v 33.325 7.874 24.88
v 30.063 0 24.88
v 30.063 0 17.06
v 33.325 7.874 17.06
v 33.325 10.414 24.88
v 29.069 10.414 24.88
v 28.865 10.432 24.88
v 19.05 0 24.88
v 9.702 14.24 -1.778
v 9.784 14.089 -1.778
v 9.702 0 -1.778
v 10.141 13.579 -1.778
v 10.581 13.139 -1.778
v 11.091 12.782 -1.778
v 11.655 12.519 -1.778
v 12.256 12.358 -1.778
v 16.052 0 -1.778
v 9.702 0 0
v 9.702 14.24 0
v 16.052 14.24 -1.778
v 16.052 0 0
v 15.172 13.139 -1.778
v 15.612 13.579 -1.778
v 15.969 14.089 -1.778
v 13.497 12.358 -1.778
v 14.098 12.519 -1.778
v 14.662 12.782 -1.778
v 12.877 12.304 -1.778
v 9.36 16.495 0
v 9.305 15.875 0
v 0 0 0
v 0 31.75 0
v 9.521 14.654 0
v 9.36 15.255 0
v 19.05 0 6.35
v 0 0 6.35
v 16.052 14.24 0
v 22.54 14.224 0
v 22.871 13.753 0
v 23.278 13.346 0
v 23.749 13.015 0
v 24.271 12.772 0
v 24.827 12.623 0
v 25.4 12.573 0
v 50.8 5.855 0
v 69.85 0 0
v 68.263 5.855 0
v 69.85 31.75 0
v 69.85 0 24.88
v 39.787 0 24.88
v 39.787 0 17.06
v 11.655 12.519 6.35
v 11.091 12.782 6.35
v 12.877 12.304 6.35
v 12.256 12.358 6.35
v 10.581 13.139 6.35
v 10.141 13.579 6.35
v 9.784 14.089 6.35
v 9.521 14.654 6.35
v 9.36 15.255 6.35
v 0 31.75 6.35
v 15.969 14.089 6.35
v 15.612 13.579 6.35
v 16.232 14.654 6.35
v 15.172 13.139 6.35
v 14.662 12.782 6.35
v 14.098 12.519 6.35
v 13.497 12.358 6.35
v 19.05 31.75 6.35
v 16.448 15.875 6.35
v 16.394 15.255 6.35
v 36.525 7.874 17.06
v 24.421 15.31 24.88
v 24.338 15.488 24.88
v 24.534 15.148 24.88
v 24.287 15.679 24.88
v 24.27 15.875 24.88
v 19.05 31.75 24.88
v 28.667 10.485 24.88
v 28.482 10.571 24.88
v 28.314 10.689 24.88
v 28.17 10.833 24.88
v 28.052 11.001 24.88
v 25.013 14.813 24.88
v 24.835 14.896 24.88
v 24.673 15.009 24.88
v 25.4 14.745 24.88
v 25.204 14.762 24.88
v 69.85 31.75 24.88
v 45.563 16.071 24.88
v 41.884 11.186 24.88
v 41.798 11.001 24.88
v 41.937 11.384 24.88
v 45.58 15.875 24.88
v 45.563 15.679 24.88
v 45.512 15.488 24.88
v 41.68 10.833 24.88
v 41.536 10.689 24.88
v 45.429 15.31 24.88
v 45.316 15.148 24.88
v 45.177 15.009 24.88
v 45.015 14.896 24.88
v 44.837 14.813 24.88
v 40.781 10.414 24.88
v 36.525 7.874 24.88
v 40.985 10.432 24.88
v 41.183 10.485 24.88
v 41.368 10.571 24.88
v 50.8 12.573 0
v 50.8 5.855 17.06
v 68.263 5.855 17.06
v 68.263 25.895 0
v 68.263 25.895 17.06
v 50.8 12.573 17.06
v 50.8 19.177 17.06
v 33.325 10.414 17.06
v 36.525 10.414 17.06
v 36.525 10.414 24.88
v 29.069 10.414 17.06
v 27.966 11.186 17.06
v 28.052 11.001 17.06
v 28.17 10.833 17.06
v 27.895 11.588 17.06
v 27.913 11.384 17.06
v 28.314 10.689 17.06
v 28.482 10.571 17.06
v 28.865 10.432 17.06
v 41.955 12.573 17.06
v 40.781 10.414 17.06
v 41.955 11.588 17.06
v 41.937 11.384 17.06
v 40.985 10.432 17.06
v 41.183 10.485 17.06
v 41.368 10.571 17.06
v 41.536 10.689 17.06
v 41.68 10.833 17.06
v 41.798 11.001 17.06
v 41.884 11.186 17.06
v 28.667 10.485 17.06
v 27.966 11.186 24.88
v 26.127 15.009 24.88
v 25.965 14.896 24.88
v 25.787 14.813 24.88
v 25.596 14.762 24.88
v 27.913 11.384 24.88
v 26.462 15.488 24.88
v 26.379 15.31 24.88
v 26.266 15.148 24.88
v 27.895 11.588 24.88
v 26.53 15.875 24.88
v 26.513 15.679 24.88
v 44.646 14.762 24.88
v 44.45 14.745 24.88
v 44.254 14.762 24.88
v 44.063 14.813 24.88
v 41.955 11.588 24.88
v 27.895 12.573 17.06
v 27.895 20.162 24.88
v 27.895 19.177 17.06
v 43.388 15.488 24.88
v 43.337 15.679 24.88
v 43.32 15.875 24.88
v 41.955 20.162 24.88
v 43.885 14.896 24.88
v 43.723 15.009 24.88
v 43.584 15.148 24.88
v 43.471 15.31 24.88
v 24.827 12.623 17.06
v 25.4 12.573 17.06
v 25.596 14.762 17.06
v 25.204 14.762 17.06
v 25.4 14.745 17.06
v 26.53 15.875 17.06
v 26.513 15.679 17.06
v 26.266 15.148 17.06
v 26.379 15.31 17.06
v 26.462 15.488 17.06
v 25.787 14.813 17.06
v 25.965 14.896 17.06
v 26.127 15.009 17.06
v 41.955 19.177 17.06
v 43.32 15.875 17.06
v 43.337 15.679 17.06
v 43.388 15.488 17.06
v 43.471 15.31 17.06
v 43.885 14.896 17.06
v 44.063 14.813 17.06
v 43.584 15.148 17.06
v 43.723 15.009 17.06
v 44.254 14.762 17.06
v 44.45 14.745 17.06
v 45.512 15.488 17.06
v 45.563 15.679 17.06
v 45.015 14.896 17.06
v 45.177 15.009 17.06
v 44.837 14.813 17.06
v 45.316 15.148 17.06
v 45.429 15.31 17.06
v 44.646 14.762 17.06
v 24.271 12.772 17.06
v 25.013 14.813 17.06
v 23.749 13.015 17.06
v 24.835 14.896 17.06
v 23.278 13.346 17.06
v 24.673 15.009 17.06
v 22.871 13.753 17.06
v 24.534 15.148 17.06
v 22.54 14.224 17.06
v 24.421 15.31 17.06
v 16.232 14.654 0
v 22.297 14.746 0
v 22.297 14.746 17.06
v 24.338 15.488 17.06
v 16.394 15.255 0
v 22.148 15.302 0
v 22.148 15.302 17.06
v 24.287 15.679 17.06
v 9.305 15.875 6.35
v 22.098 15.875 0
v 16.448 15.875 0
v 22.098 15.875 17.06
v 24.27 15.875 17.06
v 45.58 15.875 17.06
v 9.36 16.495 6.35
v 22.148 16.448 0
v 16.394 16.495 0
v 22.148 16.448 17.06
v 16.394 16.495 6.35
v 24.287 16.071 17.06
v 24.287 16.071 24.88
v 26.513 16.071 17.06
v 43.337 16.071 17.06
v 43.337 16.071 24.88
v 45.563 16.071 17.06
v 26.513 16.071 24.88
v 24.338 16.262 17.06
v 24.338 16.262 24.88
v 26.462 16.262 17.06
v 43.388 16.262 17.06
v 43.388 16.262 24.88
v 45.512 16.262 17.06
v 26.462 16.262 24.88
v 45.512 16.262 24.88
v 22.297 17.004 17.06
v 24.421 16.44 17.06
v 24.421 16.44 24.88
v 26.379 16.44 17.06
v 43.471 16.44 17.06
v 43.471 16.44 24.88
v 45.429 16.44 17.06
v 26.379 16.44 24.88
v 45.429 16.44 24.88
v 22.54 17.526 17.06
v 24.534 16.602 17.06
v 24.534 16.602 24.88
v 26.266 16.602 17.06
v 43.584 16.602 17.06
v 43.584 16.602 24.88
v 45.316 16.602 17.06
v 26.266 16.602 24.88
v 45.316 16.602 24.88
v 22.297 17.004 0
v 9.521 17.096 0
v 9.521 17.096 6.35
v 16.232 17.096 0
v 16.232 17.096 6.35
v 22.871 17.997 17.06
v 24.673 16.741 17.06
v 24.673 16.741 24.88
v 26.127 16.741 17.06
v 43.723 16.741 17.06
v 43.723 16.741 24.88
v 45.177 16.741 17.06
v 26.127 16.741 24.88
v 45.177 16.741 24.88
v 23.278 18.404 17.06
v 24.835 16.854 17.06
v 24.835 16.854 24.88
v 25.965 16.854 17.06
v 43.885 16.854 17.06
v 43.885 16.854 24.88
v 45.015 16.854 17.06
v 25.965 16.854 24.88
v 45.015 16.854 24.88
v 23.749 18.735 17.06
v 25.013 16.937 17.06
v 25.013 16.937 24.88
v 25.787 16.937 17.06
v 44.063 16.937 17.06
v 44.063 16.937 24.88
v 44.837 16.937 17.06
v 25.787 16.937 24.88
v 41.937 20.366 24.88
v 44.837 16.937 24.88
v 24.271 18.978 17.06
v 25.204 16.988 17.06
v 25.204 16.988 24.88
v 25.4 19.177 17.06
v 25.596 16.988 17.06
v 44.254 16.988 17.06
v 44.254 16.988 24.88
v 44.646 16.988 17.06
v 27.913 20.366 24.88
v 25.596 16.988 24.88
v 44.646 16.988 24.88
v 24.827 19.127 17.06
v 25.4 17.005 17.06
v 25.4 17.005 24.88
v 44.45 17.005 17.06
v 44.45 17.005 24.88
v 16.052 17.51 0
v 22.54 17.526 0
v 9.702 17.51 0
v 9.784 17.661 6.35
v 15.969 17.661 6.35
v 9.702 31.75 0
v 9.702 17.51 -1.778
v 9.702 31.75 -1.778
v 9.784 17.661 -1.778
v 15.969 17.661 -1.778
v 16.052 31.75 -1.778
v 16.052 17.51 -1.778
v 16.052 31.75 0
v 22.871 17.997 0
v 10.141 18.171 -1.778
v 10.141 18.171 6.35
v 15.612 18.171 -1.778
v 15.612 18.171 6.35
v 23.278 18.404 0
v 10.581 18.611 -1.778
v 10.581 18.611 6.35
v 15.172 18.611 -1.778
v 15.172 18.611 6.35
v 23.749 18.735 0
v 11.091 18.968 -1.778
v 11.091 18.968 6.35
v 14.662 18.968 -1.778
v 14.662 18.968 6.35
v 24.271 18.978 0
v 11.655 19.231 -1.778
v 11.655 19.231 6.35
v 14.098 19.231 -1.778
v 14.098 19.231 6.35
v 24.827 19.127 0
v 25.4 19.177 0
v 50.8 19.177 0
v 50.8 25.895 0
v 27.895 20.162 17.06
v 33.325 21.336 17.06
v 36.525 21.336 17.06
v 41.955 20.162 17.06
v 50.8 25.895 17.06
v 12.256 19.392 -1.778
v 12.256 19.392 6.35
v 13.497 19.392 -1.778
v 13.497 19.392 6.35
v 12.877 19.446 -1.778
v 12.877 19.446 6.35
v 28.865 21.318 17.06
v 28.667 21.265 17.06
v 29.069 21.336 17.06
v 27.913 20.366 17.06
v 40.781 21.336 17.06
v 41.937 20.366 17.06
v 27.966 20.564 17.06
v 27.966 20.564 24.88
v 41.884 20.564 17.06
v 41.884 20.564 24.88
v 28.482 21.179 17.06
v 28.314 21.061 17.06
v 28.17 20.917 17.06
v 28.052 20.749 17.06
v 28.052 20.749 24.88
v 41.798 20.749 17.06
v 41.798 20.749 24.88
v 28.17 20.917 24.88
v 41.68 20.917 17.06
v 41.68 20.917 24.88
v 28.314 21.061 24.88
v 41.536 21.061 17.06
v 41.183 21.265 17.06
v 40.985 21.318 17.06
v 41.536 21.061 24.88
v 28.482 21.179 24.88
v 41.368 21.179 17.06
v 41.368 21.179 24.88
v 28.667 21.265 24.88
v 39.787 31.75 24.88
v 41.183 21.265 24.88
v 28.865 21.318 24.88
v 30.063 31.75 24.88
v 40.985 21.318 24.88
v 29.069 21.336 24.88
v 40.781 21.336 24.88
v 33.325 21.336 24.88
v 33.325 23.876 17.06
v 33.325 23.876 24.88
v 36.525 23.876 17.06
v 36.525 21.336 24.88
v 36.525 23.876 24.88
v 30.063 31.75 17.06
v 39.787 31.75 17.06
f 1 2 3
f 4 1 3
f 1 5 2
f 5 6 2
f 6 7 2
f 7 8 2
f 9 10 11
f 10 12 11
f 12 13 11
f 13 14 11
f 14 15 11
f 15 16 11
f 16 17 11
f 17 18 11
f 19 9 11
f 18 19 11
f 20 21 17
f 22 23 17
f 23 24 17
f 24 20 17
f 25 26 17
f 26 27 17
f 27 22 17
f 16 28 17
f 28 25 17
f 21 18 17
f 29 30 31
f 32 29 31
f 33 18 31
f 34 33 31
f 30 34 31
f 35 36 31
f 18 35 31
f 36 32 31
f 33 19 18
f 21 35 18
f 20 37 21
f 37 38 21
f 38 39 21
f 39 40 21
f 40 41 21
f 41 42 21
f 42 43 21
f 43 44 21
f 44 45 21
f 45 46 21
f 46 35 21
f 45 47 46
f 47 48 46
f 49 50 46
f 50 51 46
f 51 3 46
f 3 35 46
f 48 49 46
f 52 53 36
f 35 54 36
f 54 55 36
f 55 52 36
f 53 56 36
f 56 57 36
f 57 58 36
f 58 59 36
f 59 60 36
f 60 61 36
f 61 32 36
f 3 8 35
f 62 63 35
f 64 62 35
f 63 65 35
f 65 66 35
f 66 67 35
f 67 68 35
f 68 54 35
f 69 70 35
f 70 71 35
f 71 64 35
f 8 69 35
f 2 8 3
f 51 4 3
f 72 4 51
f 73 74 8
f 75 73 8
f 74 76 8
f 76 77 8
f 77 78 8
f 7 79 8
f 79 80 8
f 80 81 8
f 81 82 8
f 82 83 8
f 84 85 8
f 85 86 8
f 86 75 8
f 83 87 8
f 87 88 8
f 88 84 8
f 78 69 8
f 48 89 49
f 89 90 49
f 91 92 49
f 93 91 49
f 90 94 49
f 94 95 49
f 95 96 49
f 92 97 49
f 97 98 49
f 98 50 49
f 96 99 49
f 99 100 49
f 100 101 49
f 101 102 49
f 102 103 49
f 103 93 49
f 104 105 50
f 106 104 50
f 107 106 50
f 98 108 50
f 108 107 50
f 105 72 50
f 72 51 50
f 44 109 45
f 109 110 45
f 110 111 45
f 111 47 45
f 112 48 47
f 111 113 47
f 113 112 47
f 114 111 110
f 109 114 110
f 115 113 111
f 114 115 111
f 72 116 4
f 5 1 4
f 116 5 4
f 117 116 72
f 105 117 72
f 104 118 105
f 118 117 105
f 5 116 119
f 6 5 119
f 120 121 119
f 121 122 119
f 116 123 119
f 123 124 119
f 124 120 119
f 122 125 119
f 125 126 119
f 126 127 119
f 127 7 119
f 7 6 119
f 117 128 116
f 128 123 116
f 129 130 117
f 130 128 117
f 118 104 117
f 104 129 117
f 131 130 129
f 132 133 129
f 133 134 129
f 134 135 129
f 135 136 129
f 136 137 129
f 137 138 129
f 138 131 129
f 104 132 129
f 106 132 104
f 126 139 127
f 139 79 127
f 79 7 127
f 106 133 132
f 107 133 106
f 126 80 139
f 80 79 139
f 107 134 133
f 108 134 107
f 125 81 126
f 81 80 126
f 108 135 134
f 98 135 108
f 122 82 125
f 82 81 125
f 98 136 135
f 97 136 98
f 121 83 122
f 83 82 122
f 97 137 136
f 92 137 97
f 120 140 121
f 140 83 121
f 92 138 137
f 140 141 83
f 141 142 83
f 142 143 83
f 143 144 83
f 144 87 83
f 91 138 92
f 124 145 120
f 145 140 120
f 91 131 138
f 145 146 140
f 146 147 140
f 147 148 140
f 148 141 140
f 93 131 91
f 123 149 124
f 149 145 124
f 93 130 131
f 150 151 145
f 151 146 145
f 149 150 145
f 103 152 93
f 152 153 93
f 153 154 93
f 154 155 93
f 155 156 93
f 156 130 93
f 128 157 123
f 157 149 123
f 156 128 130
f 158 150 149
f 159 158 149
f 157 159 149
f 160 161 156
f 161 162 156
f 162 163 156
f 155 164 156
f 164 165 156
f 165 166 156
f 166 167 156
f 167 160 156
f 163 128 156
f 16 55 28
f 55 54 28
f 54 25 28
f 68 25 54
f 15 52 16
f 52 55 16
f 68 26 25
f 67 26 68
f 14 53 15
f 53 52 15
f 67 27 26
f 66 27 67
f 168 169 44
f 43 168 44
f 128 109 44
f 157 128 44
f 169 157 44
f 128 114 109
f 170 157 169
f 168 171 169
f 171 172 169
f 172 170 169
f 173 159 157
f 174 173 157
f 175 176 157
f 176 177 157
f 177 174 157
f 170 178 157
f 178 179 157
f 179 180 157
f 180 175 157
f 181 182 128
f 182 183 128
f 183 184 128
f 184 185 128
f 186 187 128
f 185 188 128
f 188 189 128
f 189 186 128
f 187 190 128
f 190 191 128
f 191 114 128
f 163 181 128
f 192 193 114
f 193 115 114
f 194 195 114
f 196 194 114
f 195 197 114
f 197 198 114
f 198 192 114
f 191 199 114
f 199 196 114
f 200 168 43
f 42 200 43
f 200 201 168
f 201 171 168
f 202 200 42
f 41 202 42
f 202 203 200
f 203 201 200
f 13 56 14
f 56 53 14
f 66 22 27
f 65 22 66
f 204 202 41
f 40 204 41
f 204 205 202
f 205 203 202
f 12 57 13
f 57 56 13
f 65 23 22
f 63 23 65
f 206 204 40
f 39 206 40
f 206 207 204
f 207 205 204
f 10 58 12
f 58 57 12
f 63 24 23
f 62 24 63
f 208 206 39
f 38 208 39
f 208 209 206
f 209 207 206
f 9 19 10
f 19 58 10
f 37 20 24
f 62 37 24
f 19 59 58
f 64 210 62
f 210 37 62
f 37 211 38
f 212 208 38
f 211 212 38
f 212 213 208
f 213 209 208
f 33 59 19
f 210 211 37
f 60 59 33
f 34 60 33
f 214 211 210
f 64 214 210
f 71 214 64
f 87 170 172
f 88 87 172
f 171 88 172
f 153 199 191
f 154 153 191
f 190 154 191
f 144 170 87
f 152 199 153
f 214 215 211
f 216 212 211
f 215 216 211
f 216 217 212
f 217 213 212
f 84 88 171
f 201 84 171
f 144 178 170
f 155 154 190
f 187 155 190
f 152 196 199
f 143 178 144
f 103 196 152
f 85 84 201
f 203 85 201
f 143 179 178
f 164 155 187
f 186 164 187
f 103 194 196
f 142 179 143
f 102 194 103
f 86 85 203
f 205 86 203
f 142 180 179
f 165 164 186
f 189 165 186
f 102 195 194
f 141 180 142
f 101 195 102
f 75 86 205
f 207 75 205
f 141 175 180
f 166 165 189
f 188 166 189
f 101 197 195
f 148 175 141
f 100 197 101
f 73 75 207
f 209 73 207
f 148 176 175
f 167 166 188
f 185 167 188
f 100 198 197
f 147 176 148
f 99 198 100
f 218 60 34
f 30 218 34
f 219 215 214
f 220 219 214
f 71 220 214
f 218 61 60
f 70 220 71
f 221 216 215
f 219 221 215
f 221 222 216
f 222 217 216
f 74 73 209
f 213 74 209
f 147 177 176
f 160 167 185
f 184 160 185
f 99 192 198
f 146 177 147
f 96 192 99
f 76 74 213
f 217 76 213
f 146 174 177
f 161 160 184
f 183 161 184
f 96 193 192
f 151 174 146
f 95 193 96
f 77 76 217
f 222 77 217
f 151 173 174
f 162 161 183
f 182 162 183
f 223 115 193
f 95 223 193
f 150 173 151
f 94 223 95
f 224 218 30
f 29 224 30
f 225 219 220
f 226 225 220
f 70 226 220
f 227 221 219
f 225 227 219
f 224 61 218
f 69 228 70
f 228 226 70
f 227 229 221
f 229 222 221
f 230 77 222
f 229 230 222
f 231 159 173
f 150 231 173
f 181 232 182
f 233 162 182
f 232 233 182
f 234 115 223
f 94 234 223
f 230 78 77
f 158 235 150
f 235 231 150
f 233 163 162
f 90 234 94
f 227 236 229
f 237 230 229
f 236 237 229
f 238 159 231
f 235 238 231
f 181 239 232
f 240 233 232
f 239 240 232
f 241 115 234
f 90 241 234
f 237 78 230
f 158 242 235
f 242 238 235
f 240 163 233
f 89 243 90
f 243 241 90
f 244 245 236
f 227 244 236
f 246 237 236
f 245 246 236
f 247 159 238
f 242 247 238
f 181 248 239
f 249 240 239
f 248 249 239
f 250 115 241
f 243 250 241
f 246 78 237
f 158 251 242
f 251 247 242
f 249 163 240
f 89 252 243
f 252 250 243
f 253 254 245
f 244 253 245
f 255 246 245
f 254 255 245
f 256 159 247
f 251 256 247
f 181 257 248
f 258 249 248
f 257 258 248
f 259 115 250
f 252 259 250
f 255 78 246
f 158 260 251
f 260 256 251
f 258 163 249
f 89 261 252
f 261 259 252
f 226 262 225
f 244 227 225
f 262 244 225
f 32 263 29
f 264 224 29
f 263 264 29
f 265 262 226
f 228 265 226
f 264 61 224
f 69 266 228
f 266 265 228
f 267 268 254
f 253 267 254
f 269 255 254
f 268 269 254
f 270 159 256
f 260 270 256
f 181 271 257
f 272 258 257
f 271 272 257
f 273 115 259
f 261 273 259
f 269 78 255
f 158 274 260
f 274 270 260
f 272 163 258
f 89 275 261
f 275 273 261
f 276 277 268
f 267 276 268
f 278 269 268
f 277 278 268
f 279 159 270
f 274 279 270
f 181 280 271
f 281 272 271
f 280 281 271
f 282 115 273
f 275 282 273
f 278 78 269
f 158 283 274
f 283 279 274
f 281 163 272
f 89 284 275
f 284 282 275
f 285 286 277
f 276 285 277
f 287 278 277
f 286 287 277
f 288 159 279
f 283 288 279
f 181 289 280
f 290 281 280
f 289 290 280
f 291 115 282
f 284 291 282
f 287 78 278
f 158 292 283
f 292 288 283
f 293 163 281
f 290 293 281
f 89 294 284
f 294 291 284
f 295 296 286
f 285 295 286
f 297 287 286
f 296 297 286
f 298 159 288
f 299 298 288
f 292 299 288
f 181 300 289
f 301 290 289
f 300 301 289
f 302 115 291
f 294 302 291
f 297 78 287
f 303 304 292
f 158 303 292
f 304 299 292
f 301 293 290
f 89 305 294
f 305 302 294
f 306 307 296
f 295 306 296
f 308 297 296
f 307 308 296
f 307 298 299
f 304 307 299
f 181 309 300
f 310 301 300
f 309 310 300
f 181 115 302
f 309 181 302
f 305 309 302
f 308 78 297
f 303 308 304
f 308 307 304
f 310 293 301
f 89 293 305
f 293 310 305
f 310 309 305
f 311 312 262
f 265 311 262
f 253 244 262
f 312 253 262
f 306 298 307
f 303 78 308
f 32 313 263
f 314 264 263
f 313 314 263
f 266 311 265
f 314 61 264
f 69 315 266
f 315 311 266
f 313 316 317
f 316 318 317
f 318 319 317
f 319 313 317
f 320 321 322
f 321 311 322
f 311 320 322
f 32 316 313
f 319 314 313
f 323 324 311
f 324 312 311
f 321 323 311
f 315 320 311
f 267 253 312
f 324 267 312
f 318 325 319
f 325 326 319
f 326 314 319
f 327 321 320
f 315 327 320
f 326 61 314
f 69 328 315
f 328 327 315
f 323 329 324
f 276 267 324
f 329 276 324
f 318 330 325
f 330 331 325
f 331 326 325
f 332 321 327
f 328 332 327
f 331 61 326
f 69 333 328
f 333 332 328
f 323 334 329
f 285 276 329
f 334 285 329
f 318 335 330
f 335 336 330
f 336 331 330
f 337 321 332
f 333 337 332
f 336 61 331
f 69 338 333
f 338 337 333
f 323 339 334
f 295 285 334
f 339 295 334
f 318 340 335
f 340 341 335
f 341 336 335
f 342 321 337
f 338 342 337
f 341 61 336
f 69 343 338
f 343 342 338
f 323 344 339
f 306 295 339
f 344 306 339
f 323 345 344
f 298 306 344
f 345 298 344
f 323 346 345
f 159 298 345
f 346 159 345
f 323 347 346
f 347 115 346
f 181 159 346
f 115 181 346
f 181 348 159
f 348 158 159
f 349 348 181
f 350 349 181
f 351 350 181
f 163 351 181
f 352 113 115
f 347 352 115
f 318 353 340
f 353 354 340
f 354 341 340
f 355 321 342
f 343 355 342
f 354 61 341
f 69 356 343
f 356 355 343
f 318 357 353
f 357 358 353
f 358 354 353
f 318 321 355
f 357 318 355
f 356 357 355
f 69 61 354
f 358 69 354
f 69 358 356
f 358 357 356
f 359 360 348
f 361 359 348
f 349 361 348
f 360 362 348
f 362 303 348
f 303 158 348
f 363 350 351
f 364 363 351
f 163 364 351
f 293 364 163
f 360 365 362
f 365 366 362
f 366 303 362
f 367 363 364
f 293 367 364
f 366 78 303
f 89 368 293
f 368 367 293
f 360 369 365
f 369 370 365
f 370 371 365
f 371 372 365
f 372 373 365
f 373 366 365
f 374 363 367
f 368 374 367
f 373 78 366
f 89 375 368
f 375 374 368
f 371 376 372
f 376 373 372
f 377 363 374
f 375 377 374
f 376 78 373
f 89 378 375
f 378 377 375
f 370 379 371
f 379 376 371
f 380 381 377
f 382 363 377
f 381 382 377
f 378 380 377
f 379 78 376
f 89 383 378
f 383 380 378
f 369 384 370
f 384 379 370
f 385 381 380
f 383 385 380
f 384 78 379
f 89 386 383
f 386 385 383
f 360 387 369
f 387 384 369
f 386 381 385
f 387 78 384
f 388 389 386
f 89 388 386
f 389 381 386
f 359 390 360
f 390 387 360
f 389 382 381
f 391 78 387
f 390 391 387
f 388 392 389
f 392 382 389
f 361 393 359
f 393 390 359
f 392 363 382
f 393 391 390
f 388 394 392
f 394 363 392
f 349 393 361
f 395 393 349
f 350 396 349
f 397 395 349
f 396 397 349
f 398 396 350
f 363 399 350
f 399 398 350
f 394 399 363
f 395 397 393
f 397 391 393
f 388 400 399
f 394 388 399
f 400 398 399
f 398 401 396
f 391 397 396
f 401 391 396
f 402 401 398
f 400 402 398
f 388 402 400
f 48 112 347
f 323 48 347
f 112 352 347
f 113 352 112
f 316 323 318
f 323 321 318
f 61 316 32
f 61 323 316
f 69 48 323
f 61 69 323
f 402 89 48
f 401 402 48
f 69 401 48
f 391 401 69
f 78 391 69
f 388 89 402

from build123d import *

# Parameters (mm, degrees)
SKETCH1_W               = 69.85
SKETCH1_H               = 31.75
BOSS_EXTRUDE1_DEPTH     = 24.88
CUT_EXTRUDE1_DEPTH      = 17.06
CUT_EXTRUDE2_DEPTH      = 7.82
CUT_EXTRUDE3_DEPTH      = 7.82
F_4_40_TAPPED_HOLE1_D   = 2.2606
SKETCH7_W               = 6.35
SKETCH7_H               = 31.75
BOSS_EXTRUDE2_DEPTH     = 1.778
SKETCH8_W               = 19.05
SKETCH8_H               = 18.53
CUT_EXTRUDE4_DEPTH      = 81.660395486
F_1_4_CLEARANCE_HOLE1_D = 7.14248


with BuildPart() as part:
    # Sketch1 → Boss-Extrude1 (new body)
    with BuildSketch(Plane.XY):
        with Locations((34.925, 15.875)):
            Rectangle(SKETCH1_W, SKETCH1_H)
    extrude(amount=BOSS_EXTRUDE1_DEPTH)

    # Sketch2 → Cut-Extrude1 (cut)
    with BuildSketch(Plane(origin=(0, 0, 0), x_dir=(-1, 0, 0), z_dir=(0, 0, -1))):
        with BuildLine():
            Line((-68.2625, 25.8953), (-50.8, 25.8953))
            Line((-50.8, 25.8953), (-50.8, 19.177))
            Line((-50.8, 19.177), (-25.4, 19.177))
            ThreePointArc((-25.4, 19.177), (-22.098, 15.875), (-25.4, 12.573))
            Line((-25.4, 12.573), (-50.8, 12.573))
            Line((-50.8, 12.573), (-50.8, 5.8547))
            Line((-50.8, 5.8547), (-68.2625, 5.8547))
            Line((-68.2625, 5.8547), (-68.2625, 25.8953))
        make_face()
    extrude(amount=-CUT_EXTRUDE1_DEPTH, mode=Mode.SUBTRACT)

    # Sketch3 → Cut-Extrude2 (cut)
    with BuildSketch(Plane.XY.offset(24.88)):
        with BuildLine():
            Line((29.068797257, 21.336), (40.781202743, 21.336))
            ThreePointArc((40.781202743, 21.336), (41.611202743, 20.992202743), (41.955, 20.162202743))
            Line((41.955, 20.162202743), (41.955, 11.587797257))
            ThreePointArc((41.955, 11.587797257), (41.611202743, 10.757797257), (40.781202743, 10.414))
            Line((40.781202743, 10.414), (29.068797257, 10.414))
            ThreePointArc((29.068797257, 10.414), (28.238797257, 10.757797257), (27.895, 11.587797257))
            Line((27.895, 11.587797257), (27.895, 20.162202743))
            ThreePointArc((27.895, 20.162202743), (28.238797257, 20.992202743), (29.068797257, 21.336))
        make_face()
    extrude(amount=-CUT_EXTRUDE2_DEPTH, mode=Mode.SUBTRACT)

    # Sketch4 → Cut-Extrude3 (cut)
    with BuildSketch(Plane.XY.offset(24.88)):
        Polygon((30.06348241, 31.75), (33.325, 23.876), (33.325, 21.336), (36.525, 21.336), (36.525, 23.876), (39.78651759, 31.75), align=None)
        Polygon((33.325, 10.414), (33.325, 7.874), (30.06348241, 0), (39.78651759, 0), (36.525, 7.874), (36.525, 10.414), align=None)
    extrude(amount=-CUT_EXTRUDE3_DEPTH, mode=Mode.SUBTRACT)

    # #4-40 Tapped Hole1 (through all)
    with Locations(Plane(origin=(0, 0, 17.06), x_dir=(-1, 0, 0), z_dir=(0, 0, -1))):
        with Locations((-44.45, 15.875), (-25.4, 15.875)):
            Hole(F_4_40_TAPPED_HOLE1_D / 2)

    # Sketch7 → Boss-Extrude2 (add)
    with BuildSketch(Plane(origin=(0, 0, 0), x_dir=(-1, 0, 0), z_dir=(0, 0, -1))):
        with Locations((-12.876533699, 15.875)):
            Rectangle(SKETCH7_W, SKETCH7_H)
    extrude(amount=BOSS_EXTRUDE2_DEPTH)

    # Sketch8 → Cut-Extrude4 (cut, through all)
    with BuildSketch(Plane(origin=(0, 31.75, 0), x_dir=(1, 0, 0), z_dir=(0, 1, 0))):
        with Locations((9.525, -15.615)):
            Rectangle(SKETCH8_W, SKETCH8_H)
    extrude(amount=-CUT_EXTRUDE4_DEPTH, mode=Mode.SUBTRACT)

    # 1/4 Clearance Hole1 (through all)
    with Locations(Plane.XY.offset(6.35)):
        with Locations((12.876533699, 15.875)):
            Hole(F_1_4_CLEARANCE_HOLE1_D / 2)


solid = part.part
